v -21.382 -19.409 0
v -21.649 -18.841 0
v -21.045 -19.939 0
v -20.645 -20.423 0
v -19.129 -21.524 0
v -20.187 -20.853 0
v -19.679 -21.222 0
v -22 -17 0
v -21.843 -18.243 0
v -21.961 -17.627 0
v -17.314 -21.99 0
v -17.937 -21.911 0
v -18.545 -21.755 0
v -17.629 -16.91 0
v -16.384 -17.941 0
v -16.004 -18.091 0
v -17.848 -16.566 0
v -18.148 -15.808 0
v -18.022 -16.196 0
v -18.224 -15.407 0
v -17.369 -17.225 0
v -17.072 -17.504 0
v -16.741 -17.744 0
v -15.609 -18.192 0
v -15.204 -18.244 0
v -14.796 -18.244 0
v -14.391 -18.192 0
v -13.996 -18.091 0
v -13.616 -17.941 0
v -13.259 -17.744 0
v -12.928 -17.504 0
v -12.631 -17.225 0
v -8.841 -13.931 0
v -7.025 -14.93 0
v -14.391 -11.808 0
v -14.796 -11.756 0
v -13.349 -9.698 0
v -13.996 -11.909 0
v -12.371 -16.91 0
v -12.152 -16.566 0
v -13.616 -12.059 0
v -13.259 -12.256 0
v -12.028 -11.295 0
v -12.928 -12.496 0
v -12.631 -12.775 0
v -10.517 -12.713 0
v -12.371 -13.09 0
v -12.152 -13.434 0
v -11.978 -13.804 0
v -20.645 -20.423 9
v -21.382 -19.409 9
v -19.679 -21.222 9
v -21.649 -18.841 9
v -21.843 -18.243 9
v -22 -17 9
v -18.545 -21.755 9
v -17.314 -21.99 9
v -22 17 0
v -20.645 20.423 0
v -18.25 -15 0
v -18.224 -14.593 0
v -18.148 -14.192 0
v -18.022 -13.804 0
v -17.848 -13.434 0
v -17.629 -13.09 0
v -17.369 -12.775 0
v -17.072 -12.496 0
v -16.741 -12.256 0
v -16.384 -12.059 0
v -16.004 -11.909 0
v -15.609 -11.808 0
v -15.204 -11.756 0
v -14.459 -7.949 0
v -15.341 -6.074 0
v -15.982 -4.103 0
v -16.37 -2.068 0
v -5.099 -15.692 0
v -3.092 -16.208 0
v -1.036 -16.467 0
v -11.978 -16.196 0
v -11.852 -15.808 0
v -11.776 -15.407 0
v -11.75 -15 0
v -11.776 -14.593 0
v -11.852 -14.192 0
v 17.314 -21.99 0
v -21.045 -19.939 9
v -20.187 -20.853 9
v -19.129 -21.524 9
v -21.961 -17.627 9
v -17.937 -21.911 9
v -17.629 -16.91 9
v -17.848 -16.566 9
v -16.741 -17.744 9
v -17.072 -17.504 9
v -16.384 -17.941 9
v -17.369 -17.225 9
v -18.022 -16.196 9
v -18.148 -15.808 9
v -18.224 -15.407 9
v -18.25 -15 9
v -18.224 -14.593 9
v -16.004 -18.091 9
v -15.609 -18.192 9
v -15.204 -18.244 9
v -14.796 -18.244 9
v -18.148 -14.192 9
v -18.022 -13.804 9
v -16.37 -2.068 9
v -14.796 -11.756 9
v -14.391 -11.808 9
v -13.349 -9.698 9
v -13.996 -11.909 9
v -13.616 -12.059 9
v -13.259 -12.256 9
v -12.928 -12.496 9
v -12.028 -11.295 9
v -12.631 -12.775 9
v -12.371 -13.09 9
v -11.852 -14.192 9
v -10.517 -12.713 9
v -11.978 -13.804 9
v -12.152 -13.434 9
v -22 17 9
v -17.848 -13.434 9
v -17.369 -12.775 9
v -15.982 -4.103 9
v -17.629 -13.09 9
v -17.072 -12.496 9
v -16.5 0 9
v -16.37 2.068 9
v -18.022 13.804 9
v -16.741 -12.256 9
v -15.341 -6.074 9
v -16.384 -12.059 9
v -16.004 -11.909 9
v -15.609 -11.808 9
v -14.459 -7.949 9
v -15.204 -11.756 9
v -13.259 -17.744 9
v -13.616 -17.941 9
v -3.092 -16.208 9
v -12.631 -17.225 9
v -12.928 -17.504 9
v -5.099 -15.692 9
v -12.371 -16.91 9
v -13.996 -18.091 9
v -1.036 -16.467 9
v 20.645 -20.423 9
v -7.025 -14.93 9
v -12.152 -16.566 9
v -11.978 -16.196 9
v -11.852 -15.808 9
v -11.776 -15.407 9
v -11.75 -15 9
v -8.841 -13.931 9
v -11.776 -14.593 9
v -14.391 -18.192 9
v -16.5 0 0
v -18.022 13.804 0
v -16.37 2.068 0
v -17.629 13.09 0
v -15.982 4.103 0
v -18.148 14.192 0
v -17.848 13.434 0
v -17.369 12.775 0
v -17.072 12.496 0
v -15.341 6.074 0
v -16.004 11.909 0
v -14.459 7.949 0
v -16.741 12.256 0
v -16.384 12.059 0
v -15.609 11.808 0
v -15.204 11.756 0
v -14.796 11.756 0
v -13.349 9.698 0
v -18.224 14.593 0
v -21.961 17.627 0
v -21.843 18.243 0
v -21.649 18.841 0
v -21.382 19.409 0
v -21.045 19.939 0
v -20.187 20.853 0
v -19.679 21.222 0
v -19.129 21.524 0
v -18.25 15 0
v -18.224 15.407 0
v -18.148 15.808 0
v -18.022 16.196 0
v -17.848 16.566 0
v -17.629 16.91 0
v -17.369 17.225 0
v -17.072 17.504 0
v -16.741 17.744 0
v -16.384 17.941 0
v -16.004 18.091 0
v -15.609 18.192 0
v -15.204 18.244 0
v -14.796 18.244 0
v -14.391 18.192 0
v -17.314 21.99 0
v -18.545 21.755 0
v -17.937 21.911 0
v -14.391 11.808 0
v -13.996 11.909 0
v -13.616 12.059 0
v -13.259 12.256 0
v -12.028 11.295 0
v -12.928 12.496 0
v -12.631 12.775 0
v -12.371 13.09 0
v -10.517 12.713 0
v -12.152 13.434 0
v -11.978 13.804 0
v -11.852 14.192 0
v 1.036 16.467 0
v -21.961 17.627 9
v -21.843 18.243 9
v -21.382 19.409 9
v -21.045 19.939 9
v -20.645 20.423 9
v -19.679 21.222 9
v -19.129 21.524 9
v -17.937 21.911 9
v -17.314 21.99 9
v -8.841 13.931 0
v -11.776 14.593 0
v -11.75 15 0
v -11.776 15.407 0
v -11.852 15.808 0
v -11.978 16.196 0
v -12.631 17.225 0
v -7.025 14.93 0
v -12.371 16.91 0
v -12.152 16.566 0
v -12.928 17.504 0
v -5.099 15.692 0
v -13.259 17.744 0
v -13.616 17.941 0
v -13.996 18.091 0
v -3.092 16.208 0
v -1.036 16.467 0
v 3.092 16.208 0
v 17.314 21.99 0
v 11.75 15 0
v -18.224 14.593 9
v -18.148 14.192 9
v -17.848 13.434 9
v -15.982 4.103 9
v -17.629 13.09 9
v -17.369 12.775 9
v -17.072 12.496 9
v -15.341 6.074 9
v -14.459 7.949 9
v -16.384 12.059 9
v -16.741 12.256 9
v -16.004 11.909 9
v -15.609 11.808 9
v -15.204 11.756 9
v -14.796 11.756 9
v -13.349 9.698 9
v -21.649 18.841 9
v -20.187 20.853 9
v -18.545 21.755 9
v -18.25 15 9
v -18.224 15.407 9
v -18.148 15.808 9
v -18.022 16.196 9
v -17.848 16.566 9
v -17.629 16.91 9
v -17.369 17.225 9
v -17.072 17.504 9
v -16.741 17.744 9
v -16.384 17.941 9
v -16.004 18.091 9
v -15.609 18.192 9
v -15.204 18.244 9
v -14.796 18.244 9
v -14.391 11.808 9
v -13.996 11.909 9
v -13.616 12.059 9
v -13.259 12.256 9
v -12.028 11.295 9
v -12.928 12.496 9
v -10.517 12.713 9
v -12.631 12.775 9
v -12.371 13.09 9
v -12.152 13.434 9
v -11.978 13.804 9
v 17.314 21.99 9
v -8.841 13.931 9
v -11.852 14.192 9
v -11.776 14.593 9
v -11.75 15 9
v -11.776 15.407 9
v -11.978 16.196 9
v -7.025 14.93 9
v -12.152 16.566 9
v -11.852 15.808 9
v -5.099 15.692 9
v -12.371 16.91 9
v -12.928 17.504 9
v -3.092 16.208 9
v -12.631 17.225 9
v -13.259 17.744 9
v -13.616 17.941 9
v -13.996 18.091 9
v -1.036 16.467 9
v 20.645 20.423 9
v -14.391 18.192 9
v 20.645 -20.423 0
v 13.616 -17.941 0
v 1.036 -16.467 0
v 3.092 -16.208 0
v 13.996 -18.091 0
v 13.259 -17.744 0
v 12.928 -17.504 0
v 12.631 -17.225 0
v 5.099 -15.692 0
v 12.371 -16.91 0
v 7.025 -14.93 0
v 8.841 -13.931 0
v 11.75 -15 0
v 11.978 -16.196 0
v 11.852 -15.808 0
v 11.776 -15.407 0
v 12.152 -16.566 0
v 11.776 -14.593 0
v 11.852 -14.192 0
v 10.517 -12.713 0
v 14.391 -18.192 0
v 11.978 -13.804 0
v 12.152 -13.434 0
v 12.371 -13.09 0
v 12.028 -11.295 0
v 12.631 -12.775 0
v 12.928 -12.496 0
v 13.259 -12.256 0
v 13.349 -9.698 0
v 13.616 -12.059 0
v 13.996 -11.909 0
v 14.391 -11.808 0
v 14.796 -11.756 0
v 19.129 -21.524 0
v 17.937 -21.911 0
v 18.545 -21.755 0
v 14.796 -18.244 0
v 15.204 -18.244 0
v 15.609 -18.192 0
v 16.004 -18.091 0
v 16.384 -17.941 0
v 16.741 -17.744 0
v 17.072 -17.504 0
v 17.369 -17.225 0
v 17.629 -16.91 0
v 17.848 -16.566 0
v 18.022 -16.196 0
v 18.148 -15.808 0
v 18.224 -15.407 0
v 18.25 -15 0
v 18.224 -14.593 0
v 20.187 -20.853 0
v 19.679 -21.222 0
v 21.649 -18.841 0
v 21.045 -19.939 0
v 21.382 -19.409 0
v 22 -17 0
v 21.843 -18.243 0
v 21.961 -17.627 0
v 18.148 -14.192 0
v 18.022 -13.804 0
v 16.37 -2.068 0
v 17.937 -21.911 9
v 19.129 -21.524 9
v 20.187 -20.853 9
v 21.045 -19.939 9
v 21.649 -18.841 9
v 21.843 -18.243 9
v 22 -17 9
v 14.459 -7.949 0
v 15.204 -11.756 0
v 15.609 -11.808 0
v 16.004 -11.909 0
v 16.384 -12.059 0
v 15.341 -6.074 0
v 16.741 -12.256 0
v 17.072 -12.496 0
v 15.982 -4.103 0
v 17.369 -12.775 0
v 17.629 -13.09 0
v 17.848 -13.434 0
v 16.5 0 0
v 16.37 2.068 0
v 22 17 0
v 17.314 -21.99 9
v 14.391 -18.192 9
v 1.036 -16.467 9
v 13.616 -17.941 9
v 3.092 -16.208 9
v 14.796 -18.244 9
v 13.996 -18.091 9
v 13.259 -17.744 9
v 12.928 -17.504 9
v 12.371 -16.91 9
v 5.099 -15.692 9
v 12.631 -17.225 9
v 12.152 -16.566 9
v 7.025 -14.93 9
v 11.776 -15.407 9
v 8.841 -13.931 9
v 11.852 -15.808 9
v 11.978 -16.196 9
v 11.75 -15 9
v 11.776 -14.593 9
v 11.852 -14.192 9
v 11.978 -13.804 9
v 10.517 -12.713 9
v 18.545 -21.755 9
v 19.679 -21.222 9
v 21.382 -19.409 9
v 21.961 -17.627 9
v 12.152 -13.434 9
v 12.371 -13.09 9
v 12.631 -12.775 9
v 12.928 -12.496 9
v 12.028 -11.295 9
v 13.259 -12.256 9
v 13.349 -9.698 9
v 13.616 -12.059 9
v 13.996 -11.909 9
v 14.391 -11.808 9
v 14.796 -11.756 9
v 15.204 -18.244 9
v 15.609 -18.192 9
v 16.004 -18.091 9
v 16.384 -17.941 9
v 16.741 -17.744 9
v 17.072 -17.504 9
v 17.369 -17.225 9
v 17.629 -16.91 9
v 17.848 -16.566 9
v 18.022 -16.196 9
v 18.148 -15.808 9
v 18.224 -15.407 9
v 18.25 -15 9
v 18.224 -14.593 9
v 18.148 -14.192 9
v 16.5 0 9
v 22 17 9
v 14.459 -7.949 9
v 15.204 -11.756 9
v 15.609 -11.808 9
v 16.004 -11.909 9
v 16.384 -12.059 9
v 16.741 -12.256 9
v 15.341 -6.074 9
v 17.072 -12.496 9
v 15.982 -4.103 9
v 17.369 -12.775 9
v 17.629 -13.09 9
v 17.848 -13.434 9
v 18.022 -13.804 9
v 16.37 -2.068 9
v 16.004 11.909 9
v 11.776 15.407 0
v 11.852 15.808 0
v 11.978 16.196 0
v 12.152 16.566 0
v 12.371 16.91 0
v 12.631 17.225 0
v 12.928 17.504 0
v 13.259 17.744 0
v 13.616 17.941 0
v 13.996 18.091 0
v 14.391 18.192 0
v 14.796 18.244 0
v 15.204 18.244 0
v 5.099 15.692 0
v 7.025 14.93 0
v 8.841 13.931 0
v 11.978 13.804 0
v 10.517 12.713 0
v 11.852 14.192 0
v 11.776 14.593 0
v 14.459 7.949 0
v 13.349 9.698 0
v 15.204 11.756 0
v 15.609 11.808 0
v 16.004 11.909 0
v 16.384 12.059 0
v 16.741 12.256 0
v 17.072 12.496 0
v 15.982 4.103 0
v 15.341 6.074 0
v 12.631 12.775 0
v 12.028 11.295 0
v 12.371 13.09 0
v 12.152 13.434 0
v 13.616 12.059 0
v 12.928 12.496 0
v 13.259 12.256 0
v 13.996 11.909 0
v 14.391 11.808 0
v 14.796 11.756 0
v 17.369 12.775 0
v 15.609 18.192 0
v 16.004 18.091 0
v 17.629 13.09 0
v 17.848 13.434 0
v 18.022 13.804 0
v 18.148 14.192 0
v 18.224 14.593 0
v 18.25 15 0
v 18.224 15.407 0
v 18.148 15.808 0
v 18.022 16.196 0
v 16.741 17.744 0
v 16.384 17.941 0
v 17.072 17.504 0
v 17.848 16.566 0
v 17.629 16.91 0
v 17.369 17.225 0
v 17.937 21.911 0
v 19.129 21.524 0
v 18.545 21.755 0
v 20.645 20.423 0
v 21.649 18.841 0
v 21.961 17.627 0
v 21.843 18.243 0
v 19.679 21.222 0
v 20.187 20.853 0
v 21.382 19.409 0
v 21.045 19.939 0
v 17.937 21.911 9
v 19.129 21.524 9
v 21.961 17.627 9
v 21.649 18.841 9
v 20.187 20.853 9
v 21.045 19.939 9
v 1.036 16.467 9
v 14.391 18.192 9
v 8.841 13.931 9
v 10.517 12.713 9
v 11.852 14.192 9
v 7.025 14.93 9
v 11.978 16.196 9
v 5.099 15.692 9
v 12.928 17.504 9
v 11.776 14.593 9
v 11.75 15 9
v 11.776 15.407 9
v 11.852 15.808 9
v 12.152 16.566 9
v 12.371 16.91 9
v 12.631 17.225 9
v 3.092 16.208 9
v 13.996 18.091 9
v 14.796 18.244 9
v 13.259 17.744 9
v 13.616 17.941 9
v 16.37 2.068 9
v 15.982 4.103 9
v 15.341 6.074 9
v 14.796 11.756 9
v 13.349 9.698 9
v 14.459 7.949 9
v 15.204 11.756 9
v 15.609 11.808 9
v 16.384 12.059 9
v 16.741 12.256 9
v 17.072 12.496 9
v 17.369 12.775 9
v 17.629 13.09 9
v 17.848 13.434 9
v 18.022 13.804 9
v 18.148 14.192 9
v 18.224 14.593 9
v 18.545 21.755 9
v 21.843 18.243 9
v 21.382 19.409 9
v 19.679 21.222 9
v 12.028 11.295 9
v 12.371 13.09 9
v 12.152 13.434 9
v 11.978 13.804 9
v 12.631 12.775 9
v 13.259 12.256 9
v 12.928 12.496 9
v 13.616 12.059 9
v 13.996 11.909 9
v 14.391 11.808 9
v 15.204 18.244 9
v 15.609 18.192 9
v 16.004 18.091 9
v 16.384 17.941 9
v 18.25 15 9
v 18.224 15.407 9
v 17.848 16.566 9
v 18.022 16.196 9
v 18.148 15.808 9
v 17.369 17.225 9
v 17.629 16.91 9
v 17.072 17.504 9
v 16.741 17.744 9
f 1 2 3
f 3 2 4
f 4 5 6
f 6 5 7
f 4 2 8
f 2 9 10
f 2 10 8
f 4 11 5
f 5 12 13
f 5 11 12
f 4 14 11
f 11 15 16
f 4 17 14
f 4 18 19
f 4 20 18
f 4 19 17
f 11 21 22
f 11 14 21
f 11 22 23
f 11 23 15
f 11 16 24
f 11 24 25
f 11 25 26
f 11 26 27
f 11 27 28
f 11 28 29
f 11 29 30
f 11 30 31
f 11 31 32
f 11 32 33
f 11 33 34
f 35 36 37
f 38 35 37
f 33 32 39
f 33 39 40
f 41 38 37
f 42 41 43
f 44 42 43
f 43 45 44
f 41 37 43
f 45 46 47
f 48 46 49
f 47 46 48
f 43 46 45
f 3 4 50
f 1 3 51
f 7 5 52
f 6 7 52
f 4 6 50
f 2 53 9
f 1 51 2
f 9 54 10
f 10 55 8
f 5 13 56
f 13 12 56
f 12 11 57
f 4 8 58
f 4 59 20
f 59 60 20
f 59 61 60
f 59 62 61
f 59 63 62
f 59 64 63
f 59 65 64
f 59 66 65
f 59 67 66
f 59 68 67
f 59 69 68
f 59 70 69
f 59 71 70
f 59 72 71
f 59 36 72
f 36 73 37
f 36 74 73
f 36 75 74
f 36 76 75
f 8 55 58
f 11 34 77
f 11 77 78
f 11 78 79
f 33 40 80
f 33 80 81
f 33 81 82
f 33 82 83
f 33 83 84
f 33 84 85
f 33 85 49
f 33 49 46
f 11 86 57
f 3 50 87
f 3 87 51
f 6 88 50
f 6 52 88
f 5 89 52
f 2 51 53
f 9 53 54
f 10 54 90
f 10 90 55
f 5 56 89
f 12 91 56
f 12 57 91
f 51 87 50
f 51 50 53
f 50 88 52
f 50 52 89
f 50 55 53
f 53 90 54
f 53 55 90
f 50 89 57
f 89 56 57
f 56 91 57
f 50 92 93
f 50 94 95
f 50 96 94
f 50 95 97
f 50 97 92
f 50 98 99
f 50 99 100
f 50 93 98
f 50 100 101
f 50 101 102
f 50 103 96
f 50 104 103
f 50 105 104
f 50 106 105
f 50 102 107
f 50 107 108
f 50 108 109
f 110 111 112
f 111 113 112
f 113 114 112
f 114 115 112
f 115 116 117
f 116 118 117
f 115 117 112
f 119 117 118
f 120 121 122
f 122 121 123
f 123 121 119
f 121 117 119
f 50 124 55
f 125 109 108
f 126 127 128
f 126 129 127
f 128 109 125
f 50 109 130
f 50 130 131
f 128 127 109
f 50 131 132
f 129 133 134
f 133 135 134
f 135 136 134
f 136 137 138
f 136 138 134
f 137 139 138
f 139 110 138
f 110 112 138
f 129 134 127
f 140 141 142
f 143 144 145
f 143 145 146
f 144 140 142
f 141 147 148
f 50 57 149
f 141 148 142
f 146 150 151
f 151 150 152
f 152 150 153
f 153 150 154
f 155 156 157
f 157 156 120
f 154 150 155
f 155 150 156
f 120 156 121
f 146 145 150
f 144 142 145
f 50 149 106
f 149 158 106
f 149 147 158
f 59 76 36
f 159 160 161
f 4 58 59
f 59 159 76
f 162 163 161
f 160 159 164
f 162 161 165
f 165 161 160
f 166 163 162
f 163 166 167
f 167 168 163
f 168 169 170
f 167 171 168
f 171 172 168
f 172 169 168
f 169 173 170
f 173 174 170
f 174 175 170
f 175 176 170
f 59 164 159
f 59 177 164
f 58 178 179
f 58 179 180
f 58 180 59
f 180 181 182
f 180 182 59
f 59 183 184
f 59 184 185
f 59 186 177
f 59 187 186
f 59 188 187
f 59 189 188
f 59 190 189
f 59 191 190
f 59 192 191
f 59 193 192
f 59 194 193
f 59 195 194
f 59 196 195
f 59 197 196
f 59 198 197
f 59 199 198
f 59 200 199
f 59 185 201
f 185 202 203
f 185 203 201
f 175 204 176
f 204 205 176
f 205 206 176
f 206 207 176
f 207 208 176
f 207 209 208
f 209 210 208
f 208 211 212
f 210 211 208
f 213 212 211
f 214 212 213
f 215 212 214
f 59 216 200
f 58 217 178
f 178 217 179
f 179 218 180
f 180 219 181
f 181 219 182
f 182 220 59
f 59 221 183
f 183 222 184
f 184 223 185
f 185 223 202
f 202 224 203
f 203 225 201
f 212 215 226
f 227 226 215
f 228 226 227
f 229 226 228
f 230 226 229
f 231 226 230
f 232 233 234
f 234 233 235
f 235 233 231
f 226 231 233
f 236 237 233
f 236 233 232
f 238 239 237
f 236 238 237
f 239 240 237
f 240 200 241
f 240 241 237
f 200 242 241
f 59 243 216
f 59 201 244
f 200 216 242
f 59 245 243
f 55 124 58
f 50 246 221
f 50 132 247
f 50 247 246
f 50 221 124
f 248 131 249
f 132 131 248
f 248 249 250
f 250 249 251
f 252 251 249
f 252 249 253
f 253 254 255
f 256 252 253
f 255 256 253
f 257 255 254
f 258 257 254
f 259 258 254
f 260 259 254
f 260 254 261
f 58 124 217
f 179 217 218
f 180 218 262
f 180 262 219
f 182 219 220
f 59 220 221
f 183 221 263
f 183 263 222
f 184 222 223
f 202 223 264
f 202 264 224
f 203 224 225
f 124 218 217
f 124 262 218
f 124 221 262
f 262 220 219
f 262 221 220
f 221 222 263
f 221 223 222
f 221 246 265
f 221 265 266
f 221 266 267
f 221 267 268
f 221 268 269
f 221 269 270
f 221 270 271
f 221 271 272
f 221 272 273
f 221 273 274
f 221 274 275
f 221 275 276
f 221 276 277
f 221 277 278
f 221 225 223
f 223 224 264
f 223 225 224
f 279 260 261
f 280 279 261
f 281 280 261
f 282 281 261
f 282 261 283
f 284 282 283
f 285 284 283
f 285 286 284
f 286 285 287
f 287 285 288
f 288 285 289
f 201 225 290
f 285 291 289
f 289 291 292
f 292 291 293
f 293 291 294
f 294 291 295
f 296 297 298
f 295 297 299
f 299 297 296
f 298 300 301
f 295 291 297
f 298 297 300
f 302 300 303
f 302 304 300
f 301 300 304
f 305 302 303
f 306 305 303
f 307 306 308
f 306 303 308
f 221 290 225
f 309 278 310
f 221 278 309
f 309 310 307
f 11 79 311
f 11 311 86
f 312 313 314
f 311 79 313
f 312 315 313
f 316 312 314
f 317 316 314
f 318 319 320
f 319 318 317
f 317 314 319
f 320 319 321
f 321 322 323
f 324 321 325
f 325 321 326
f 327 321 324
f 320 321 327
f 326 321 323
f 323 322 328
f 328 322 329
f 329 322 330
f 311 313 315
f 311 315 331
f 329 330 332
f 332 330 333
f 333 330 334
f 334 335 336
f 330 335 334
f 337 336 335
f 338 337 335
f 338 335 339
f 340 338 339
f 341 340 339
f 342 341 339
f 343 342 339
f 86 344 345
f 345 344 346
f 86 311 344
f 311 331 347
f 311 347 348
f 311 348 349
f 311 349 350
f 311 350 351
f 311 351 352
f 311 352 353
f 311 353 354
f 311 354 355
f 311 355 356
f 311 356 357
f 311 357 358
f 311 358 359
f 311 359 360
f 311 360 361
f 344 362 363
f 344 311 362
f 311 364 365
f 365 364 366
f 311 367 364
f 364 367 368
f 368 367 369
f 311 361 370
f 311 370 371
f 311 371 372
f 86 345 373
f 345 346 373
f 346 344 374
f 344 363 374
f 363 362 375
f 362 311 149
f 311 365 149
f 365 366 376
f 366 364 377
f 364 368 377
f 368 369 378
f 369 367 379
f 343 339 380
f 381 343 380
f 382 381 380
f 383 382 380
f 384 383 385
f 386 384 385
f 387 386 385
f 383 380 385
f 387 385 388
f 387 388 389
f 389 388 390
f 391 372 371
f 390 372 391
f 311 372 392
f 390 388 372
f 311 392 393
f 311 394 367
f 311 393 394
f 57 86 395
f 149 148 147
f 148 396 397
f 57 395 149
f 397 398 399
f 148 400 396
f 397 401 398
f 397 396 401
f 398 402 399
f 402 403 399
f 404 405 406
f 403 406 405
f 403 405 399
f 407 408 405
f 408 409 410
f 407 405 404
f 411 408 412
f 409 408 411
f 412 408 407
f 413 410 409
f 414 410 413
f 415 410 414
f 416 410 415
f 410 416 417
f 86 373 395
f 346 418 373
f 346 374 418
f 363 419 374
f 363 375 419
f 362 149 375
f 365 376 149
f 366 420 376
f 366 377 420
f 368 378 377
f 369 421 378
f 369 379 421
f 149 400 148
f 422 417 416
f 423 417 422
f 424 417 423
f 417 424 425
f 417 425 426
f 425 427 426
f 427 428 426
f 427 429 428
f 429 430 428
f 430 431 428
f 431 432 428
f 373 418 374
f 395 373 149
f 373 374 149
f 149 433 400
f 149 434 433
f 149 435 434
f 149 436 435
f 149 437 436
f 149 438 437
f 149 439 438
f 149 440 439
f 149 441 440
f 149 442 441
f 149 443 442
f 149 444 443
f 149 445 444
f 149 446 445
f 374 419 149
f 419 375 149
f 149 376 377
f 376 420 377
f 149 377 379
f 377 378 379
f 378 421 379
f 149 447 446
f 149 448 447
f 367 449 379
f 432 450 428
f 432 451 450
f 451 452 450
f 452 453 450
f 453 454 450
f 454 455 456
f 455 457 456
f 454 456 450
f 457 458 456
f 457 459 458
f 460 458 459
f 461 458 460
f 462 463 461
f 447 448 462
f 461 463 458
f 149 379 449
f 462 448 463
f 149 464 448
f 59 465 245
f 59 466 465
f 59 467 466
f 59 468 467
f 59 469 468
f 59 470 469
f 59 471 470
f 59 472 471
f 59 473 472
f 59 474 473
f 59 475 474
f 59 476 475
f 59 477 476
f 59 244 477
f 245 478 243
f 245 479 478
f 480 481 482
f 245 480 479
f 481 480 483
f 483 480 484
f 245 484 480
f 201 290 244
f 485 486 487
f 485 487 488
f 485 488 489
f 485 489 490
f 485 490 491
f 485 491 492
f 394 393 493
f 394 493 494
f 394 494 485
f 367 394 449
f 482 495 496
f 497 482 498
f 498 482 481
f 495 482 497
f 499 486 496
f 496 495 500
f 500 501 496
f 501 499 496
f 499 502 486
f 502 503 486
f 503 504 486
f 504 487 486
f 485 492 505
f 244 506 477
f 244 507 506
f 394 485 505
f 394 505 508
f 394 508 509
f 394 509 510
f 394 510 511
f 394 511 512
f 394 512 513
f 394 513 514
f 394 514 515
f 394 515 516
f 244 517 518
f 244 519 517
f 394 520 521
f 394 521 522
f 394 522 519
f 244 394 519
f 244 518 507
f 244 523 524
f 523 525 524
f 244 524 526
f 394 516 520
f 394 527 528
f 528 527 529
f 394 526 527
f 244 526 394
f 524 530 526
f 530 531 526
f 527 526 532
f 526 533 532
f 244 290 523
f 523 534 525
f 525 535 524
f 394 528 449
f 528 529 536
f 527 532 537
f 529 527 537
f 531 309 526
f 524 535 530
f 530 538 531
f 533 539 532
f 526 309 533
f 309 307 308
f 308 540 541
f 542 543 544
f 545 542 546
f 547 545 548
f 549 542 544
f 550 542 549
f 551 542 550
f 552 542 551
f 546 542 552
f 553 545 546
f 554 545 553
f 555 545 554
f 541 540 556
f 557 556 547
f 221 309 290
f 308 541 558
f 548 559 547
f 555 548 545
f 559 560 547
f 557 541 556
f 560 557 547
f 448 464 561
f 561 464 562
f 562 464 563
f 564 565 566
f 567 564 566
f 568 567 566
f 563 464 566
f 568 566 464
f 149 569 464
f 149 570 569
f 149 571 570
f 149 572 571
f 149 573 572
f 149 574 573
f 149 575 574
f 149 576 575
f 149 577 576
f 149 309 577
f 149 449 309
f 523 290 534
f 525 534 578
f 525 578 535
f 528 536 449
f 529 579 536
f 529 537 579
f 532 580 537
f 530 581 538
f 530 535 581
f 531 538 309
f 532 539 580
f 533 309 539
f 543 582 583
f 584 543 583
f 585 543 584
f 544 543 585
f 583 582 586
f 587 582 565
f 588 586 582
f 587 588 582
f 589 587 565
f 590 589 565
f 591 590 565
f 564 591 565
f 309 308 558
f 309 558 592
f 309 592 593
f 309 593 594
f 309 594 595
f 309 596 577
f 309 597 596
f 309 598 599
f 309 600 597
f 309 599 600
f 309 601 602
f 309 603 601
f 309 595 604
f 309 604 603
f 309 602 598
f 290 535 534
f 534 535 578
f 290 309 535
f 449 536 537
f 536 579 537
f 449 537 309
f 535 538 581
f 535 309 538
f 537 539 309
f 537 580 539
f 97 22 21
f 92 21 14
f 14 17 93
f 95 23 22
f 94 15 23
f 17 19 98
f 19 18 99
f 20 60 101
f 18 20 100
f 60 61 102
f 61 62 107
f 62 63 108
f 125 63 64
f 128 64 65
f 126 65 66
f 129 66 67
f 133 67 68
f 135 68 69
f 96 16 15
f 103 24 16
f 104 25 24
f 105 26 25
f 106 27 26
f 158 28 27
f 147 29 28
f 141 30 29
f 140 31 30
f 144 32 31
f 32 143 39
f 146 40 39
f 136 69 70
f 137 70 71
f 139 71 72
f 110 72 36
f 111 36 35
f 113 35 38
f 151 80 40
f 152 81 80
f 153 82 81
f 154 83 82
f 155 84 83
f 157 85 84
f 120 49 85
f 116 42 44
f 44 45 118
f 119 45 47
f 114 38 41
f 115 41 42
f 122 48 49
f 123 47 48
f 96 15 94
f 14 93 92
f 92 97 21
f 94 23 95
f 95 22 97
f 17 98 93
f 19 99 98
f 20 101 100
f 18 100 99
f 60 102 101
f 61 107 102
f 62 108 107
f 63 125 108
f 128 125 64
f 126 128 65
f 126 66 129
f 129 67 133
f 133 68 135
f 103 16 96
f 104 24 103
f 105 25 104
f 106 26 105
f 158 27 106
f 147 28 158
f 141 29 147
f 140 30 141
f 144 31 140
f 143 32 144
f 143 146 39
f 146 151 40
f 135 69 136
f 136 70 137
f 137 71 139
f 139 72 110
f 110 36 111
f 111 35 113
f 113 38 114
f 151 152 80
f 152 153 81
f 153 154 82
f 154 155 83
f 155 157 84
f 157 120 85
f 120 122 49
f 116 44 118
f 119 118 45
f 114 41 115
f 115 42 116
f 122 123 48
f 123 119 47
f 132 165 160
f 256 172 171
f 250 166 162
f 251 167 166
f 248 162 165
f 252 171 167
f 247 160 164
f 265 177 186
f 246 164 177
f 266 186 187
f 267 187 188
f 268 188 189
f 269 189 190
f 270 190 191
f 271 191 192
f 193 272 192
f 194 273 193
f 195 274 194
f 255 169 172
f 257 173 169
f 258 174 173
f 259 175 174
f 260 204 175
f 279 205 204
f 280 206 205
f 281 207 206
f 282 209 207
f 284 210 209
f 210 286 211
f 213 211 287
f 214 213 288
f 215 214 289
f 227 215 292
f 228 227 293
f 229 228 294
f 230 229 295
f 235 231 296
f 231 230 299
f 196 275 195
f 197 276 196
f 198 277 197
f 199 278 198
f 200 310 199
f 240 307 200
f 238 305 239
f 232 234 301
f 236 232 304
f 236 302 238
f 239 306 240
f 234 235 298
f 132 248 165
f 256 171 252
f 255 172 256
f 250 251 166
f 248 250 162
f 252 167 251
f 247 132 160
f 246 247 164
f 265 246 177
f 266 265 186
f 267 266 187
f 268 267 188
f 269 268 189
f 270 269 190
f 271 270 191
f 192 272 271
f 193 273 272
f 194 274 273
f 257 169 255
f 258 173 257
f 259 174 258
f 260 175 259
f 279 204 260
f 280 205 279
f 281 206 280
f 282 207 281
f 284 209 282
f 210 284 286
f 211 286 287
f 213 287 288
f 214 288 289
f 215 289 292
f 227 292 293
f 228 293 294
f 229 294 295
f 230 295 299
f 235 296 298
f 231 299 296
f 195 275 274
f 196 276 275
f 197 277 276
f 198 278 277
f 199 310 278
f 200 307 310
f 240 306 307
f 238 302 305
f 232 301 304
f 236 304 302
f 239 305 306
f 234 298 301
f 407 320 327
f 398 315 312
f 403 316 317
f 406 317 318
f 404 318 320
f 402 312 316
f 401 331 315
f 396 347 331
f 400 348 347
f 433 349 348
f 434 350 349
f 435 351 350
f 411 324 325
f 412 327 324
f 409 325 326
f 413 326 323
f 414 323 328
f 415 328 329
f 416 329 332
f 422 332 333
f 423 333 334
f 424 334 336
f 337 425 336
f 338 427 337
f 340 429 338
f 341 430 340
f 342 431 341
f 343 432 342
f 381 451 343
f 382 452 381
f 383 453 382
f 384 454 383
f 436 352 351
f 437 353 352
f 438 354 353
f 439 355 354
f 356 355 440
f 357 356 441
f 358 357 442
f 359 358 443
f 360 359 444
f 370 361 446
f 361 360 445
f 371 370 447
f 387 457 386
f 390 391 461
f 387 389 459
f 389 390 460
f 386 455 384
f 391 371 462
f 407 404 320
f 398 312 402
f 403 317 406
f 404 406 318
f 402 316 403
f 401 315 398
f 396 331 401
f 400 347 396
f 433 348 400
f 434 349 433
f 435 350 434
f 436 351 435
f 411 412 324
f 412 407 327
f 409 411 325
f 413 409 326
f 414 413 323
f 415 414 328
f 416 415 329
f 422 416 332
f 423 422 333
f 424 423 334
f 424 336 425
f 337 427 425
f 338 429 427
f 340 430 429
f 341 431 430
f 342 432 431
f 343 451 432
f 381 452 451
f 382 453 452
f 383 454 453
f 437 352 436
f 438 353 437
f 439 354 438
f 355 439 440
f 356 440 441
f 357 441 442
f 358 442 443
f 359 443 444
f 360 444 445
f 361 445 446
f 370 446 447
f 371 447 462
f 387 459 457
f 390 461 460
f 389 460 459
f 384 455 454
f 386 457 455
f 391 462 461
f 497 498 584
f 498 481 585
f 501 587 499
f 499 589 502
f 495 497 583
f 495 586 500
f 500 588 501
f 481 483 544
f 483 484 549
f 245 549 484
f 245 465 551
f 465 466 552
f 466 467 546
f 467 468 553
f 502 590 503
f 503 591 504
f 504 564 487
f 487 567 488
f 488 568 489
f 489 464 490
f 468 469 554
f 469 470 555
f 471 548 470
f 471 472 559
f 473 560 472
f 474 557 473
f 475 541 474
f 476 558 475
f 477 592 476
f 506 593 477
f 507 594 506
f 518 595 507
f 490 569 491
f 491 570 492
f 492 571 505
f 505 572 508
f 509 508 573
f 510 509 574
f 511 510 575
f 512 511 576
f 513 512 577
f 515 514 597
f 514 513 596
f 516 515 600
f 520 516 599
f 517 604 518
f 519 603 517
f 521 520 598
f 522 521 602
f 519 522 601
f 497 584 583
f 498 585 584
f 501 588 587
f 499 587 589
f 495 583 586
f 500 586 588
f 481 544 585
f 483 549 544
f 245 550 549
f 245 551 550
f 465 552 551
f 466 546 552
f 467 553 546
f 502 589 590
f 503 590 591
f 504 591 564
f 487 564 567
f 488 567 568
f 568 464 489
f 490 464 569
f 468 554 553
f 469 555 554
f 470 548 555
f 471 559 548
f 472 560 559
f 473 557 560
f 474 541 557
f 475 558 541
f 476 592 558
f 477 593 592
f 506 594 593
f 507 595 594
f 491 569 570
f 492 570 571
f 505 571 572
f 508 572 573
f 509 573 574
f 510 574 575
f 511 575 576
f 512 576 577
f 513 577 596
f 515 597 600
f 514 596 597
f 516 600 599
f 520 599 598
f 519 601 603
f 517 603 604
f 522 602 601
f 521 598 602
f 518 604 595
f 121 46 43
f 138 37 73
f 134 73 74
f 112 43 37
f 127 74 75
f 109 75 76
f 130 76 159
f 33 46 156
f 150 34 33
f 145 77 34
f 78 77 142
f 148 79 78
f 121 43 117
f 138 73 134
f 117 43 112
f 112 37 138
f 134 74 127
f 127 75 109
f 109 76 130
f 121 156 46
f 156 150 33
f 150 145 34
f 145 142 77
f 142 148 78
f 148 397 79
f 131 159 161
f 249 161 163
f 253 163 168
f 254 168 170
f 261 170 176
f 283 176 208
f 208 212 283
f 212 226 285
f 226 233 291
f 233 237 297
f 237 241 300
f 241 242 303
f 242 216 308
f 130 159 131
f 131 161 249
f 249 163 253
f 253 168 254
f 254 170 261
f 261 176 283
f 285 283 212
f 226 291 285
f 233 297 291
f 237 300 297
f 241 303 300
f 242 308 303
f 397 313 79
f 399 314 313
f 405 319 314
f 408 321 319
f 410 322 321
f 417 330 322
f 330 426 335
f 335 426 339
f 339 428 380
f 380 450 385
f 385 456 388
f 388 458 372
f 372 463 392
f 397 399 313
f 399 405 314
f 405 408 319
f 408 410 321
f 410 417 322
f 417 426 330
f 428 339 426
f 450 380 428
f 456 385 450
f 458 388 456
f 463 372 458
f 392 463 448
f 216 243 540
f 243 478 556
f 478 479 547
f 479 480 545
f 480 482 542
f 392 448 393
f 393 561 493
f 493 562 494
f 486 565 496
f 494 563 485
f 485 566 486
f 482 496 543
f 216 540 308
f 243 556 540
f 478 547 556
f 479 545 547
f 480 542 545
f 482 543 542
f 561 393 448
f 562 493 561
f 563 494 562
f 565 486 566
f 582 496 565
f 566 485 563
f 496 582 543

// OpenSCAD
$fn = 50;

difference() {
	union() {
		hull() {
			translate(v = [-17.0, 17.0, 0]) {
				cylinder(h = 9, r = 5);
			}
			translate(v = [17.0, 17.0, 0]) {
				cylinder(h = 9, r = 5);
			}
			translate(v = [-17.0, -17.0, 0]) {
				cylinder(h = 9, r = 5);
			}
			translate(v = [17.0, -17.0, 0]) {
				cylinder(h = 9, r = 5);
			}
		}
	}
	union() {
		translate(v = [-15.0, -15.0, -100.0]) {
			cylinder(h = 200, r = 3.25);
		}
		translate(v = [-15.0, 15.0, -100.0]) {
			cylinder(h = 200, r = 3.25);
		}
		translate(v = [15.0, -15.0, -100.0]) {
			cylinder(h = 200, r = 3.25);
		}
		translate(v = [15.0, 15.0, -100.0]) {
			cylinder(h = 200, r = 3.25);
		}
		translate(v = [-15.0, -15.0, -100.0]) {
			cylinder(h = 200, r = 1.8);
		}
		translate(v = [-15.0, 15.0, -100.0]) {
			cylinder(h = 200, r = 1.8);
		}
		translate(v = [15.0, -15.0, -100.0]) {
			cylinder(h = 200, r = 1.8);
		}
		translate(v = [15.0, 15.0, -100.0]) {
			cylinder(h = 200, r = 1.8);
		}
		cylinder(h = 9, r = 16.5);
	}
}
